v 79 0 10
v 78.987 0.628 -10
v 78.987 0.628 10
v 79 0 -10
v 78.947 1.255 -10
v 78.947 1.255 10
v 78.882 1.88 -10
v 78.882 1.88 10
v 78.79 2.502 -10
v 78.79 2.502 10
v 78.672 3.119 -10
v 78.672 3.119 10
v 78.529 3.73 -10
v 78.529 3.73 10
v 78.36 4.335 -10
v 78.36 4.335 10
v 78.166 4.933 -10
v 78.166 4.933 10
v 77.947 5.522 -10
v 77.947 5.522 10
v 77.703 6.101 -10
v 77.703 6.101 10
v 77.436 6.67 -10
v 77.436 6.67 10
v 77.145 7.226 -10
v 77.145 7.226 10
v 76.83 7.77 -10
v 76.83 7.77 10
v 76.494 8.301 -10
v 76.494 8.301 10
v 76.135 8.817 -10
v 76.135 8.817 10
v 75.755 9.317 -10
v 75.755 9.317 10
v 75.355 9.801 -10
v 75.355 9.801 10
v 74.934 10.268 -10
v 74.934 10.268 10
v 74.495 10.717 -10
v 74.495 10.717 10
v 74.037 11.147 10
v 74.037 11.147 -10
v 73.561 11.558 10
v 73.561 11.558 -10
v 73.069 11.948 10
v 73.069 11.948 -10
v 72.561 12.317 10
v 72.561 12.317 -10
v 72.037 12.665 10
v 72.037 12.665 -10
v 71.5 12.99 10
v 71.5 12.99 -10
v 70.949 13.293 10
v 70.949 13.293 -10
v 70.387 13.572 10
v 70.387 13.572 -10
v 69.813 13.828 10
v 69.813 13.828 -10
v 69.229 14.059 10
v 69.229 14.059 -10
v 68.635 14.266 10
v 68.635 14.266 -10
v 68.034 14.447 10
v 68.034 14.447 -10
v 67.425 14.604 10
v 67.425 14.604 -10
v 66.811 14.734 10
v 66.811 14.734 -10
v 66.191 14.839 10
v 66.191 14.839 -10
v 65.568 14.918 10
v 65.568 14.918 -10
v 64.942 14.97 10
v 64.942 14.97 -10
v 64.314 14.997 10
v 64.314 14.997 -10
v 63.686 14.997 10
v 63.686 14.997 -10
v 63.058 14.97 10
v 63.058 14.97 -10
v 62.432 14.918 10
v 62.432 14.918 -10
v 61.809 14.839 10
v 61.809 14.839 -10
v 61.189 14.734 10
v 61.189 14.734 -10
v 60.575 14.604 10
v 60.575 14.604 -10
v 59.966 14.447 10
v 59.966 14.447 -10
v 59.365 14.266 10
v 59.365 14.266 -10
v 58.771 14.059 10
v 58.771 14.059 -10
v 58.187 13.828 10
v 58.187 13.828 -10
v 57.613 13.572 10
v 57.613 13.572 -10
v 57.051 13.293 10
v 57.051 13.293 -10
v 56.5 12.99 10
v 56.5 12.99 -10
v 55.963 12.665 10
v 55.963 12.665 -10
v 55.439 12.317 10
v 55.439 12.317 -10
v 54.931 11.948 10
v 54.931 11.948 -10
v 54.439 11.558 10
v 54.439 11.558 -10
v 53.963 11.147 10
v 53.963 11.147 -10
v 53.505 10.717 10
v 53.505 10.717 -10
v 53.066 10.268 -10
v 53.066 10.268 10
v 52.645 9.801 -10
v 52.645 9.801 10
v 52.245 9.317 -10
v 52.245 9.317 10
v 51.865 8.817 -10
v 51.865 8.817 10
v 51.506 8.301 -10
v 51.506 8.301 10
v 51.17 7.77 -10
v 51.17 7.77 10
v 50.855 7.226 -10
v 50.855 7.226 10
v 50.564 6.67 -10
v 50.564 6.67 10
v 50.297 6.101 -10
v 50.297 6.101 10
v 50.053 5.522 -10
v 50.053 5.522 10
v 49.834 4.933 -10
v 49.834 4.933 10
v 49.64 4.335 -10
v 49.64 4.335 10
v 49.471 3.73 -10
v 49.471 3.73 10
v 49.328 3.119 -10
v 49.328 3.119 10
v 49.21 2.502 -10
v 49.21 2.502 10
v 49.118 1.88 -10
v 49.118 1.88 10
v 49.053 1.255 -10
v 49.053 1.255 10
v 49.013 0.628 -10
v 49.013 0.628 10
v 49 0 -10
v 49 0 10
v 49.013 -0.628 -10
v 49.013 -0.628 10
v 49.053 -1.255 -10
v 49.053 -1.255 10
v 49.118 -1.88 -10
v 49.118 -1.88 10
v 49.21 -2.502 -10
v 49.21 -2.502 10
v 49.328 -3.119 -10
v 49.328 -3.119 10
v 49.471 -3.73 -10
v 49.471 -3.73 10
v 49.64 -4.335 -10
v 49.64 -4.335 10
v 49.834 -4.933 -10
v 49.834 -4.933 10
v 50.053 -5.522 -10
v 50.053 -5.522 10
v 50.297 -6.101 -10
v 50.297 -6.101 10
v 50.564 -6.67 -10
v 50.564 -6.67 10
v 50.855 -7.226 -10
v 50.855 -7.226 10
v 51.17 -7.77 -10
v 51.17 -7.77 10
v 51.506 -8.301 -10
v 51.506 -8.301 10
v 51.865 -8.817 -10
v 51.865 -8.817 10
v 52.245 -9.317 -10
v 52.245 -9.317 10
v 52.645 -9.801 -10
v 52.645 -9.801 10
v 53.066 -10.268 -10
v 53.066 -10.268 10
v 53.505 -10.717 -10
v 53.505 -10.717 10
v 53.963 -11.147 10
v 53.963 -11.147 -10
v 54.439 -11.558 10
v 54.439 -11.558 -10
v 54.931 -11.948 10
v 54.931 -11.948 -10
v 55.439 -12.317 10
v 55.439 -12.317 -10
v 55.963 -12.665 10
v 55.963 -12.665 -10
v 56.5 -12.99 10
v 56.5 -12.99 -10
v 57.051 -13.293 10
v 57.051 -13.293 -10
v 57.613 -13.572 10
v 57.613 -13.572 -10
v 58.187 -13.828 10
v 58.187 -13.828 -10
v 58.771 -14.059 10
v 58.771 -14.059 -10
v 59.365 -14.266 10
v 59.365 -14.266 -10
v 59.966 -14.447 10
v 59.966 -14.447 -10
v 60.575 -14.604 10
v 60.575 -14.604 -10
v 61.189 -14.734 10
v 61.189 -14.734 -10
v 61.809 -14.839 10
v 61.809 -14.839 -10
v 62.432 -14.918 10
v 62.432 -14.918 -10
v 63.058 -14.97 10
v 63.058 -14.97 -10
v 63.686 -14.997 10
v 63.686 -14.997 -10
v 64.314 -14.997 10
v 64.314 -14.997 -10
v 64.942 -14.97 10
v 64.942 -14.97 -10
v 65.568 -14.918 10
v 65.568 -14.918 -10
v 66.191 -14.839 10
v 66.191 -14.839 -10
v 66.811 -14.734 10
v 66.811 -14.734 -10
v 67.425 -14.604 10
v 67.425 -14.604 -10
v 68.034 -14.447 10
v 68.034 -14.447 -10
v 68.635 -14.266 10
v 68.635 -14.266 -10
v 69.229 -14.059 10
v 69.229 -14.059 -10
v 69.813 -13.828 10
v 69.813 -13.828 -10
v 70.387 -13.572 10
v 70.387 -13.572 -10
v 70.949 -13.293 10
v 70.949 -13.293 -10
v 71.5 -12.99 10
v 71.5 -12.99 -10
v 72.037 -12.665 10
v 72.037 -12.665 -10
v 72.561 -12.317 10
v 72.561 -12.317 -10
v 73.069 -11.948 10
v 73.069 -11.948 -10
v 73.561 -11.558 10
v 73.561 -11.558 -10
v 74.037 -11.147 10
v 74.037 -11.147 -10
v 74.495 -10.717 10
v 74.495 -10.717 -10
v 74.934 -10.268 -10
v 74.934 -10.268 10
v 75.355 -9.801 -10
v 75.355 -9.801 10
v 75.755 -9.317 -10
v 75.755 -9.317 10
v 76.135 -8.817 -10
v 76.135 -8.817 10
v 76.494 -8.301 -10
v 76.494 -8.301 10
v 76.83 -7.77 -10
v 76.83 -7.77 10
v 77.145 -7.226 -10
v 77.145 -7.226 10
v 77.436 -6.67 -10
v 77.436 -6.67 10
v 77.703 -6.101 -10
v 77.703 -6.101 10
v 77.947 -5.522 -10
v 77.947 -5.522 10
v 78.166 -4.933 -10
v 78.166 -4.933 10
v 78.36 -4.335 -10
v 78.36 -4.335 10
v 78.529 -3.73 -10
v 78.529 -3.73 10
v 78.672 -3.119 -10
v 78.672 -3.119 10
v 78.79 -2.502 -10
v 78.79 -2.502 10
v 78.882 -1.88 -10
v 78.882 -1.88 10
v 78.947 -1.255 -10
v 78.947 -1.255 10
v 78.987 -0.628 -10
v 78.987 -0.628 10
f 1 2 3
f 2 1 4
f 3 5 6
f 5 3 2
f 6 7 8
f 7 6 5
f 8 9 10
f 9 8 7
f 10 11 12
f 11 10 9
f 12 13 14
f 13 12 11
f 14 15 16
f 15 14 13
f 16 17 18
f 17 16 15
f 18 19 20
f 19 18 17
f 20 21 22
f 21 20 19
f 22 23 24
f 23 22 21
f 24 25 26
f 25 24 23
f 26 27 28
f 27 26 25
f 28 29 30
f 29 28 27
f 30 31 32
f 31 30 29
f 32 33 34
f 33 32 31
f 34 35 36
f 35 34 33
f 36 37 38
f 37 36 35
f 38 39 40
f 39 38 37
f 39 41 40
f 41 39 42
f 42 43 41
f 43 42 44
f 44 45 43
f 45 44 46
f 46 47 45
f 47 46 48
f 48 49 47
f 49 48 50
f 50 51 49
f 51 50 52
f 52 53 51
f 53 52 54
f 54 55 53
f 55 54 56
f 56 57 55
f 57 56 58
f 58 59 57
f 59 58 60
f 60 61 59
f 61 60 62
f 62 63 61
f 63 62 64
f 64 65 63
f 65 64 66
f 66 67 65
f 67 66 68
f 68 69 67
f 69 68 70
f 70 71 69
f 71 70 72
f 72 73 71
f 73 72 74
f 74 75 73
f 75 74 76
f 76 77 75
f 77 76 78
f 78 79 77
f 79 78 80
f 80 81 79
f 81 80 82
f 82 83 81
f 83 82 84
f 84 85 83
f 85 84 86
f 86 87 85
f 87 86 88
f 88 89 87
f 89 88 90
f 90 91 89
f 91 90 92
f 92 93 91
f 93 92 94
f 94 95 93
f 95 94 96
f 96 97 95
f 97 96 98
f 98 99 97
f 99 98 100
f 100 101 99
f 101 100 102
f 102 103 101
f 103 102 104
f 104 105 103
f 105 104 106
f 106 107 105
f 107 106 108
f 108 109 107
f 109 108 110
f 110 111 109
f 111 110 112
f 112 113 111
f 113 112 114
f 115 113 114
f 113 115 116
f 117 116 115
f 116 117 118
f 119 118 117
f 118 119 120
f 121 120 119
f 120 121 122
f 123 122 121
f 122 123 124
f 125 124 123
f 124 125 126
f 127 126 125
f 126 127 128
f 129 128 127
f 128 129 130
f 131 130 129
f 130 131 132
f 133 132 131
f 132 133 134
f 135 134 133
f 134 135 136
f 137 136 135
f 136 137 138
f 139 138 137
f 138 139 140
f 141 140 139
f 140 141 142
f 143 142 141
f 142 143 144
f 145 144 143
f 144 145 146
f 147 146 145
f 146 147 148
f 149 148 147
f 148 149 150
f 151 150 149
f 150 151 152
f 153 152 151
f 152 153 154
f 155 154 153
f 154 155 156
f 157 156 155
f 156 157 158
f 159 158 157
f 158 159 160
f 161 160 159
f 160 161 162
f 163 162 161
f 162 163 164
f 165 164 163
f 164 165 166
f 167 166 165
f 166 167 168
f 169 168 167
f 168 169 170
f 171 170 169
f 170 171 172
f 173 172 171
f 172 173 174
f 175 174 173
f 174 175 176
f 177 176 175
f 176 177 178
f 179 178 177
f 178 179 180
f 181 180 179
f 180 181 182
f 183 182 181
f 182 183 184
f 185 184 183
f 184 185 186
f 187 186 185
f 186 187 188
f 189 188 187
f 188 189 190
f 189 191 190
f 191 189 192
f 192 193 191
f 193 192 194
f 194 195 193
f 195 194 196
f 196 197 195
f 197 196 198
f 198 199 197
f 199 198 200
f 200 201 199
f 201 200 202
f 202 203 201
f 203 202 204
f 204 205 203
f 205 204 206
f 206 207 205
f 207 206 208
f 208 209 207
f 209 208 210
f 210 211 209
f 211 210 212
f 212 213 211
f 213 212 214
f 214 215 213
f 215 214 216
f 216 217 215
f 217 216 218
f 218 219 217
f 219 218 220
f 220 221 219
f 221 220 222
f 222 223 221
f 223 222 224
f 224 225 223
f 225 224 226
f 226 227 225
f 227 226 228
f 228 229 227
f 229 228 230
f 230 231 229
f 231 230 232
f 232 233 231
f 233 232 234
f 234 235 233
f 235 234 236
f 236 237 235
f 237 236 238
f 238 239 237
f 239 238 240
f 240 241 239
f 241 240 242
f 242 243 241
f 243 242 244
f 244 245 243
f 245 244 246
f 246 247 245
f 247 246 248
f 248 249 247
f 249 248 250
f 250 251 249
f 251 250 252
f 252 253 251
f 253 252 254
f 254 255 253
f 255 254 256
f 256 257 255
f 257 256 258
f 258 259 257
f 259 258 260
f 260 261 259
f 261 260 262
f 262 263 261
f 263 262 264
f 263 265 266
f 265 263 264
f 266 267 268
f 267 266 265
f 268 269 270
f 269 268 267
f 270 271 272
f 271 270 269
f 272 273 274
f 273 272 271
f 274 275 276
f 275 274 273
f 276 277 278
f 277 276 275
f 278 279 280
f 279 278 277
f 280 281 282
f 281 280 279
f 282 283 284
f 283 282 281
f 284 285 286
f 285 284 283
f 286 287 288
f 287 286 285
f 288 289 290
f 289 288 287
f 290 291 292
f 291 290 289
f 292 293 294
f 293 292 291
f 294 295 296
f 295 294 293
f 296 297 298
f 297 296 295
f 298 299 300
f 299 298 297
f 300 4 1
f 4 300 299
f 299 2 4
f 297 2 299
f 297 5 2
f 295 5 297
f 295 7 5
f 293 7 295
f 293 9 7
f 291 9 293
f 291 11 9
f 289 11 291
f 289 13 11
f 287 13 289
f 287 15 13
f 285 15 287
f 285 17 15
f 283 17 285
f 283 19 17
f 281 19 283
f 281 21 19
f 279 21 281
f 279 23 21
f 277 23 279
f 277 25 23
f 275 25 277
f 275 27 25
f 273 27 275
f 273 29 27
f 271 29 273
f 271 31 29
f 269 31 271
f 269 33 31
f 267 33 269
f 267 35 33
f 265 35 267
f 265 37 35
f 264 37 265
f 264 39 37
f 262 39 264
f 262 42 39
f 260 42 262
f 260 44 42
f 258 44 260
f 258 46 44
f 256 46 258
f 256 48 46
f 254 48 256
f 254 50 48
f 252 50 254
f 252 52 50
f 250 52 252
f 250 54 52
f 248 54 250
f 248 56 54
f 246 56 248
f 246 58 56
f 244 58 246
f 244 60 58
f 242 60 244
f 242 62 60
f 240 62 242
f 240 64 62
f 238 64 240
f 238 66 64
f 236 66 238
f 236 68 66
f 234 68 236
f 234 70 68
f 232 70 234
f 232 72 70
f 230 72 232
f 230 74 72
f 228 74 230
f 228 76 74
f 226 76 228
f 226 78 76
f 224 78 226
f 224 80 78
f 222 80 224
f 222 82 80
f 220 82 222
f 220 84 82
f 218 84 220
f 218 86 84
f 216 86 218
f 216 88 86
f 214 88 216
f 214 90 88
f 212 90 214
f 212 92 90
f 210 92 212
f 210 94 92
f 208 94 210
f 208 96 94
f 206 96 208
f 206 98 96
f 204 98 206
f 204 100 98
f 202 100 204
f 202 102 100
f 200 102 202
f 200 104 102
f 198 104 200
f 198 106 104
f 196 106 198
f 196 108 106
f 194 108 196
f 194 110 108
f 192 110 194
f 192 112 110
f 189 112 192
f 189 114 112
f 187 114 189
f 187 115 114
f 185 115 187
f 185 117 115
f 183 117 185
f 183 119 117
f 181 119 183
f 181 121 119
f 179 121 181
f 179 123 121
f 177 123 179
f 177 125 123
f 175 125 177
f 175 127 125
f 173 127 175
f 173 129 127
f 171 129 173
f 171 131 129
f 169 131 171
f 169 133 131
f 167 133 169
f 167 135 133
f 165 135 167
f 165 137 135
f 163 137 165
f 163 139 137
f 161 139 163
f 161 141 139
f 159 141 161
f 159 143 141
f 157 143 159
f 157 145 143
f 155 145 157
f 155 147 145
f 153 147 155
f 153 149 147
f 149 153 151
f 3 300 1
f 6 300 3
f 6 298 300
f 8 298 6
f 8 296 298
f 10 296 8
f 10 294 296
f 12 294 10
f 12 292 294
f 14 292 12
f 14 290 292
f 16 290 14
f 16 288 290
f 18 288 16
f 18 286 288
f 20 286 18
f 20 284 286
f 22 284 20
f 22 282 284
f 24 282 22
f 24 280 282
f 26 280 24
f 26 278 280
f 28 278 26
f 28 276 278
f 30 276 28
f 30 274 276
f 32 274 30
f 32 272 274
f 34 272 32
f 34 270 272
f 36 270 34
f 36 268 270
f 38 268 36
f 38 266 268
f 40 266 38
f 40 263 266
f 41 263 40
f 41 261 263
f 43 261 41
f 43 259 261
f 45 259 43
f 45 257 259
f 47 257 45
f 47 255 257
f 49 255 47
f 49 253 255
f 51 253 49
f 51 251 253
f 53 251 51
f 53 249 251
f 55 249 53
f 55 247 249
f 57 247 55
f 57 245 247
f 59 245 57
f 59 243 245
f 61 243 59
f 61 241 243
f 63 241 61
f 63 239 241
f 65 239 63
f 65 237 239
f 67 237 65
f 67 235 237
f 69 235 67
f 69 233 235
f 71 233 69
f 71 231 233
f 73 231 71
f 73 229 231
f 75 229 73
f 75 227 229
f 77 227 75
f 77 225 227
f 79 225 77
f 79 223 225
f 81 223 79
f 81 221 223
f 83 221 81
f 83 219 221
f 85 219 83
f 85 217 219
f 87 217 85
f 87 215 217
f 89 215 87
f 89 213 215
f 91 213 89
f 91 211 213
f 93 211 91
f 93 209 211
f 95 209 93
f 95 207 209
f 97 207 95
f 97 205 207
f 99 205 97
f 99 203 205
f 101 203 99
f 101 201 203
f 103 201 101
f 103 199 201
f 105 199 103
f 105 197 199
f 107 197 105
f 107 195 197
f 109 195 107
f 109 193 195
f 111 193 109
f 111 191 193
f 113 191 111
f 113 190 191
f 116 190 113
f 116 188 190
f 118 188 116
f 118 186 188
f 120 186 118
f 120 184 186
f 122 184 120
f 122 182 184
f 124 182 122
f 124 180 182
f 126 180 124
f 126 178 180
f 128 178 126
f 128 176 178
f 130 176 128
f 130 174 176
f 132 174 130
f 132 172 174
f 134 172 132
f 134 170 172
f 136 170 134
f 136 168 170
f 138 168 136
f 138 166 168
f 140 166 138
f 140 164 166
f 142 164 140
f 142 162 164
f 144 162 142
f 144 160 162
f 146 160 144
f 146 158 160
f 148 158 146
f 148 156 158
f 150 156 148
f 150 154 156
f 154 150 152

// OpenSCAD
$fn = 150;

translate([64, 0, 0])
rotate([0, 0, 0])
cylinder(20, 15, 15, true);
